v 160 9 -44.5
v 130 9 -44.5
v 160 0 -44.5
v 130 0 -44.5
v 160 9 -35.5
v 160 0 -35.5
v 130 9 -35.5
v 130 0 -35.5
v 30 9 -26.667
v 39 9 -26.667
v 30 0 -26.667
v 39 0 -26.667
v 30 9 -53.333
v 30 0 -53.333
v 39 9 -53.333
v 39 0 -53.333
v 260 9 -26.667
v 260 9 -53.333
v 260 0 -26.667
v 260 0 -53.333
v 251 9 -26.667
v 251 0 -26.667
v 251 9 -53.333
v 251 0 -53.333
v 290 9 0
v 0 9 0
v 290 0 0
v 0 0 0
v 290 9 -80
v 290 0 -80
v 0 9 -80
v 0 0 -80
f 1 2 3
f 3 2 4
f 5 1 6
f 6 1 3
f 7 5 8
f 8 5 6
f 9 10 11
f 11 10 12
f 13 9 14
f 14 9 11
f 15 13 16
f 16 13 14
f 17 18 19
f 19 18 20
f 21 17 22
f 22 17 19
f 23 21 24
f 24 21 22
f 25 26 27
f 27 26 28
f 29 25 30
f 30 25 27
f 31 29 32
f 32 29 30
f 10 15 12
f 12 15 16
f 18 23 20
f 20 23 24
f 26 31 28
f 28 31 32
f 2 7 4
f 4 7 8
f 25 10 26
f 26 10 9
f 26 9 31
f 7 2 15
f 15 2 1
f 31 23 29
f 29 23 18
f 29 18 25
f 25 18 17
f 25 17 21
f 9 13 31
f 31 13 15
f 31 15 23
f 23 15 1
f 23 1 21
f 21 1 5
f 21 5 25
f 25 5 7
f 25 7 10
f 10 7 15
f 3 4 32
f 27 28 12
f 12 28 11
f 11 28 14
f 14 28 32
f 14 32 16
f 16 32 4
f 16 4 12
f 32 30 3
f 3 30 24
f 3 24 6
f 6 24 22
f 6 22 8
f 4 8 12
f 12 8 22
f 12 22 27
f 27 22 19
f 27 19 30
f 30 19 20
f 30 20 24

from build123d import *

# Parameters (mm, degrees)
SKETCH1_W           = 30
SKETCH1_H           = 9
SKETCH1_W_2         = 9
SKETCH1_H_2         = 26.666666667
BOSS_EXTRUDE1_DEPTH = 9


with BuildPart() as part:
    # Sketch1 → Boss-Extrude1 (new body)
    # profile 1 of 7: a face of its own
    with BuildSketch(Plane(origin=(0, 0, 0), x_dir=(1, 0, 0), z_dir=(0, 1, 0))):
        Polygon((39, 26.666666667), (39, 0), (251, 0), (251, 26.666666667), (251, 53.333333333), (251, 80), (39, 80), (39, 53.333333333), align=None)
        with Locations((145, 40)):
            Rectangle(SKETCH1_W, SKETCH1_H, mode=Mode.SUBTRACT)
    # profile 2 of 7: a face of its own
    with BuildSketch(Plane(origin=(0, 0, 0), x_dir=(1, 0, 0), z_dir=(0, 1, 0))):
        with Locations((34.5, 66.666666667)):
            Rectangle(SKETCH1_W_2, SKETCH1_H_2)
    # profile 3 of 7: a face of its own
    with BuildSketch(Plane(origin=(0, 0, 0), x_dir=(1, 0, 0), z_dir=(0, 1, 0))):
        with Locations((34.5, 13.333333334)):
            Rectangle(SKETCH1_W_2, SKETCH1_H_2)
    # profile 4 of 7: a face of its own
    with BuildSketch(Plane(origin=(0, 0, 0), x_dir=(1, 0, 0), z_dir=(0, 1, 0))):
        Polygon((0, 80), (0, 0), (30, 0), (30, 26.666666667), (30, 53.333333333), (30, 80), align=None)
    # profile 5 of 7: a face of its own
    with BuildSketch(Plane(origin=(0, 0, 0), x_dir=(1, 0, 0), z_dir=(0, 1, 0))):
        Polygon((260, 26.666666667), (260, 0), (290, 0), (290, 80), (260, 80), (260, 53.333333333), align=None)
    # profile 6 of 7: a face of its own
    with BuildSketch(Plane(origin=(0, 0, 0), x_dir=(1, 0, 0), z_dir=(0, 1, 0))):
        with Locations((255.5, 13.333333334)):
            Rectangle(SKETCH1_W_2, SKETCH1_H_2)
    # profile 7 of 7: a face of its own
    with BuildSketch(Plane(origin=(0, 0, 0), x_dir=(1, 0, 0), z_dir=(0, 1, 0))):
        with Locations((255.5, 66.666666667)):
            Rectangle(SKETCH1_W_2, SKETCH1_H_2)
    extrude(amount=BOSS_EXTRUDE1_DEPTH)


solid = part.part
